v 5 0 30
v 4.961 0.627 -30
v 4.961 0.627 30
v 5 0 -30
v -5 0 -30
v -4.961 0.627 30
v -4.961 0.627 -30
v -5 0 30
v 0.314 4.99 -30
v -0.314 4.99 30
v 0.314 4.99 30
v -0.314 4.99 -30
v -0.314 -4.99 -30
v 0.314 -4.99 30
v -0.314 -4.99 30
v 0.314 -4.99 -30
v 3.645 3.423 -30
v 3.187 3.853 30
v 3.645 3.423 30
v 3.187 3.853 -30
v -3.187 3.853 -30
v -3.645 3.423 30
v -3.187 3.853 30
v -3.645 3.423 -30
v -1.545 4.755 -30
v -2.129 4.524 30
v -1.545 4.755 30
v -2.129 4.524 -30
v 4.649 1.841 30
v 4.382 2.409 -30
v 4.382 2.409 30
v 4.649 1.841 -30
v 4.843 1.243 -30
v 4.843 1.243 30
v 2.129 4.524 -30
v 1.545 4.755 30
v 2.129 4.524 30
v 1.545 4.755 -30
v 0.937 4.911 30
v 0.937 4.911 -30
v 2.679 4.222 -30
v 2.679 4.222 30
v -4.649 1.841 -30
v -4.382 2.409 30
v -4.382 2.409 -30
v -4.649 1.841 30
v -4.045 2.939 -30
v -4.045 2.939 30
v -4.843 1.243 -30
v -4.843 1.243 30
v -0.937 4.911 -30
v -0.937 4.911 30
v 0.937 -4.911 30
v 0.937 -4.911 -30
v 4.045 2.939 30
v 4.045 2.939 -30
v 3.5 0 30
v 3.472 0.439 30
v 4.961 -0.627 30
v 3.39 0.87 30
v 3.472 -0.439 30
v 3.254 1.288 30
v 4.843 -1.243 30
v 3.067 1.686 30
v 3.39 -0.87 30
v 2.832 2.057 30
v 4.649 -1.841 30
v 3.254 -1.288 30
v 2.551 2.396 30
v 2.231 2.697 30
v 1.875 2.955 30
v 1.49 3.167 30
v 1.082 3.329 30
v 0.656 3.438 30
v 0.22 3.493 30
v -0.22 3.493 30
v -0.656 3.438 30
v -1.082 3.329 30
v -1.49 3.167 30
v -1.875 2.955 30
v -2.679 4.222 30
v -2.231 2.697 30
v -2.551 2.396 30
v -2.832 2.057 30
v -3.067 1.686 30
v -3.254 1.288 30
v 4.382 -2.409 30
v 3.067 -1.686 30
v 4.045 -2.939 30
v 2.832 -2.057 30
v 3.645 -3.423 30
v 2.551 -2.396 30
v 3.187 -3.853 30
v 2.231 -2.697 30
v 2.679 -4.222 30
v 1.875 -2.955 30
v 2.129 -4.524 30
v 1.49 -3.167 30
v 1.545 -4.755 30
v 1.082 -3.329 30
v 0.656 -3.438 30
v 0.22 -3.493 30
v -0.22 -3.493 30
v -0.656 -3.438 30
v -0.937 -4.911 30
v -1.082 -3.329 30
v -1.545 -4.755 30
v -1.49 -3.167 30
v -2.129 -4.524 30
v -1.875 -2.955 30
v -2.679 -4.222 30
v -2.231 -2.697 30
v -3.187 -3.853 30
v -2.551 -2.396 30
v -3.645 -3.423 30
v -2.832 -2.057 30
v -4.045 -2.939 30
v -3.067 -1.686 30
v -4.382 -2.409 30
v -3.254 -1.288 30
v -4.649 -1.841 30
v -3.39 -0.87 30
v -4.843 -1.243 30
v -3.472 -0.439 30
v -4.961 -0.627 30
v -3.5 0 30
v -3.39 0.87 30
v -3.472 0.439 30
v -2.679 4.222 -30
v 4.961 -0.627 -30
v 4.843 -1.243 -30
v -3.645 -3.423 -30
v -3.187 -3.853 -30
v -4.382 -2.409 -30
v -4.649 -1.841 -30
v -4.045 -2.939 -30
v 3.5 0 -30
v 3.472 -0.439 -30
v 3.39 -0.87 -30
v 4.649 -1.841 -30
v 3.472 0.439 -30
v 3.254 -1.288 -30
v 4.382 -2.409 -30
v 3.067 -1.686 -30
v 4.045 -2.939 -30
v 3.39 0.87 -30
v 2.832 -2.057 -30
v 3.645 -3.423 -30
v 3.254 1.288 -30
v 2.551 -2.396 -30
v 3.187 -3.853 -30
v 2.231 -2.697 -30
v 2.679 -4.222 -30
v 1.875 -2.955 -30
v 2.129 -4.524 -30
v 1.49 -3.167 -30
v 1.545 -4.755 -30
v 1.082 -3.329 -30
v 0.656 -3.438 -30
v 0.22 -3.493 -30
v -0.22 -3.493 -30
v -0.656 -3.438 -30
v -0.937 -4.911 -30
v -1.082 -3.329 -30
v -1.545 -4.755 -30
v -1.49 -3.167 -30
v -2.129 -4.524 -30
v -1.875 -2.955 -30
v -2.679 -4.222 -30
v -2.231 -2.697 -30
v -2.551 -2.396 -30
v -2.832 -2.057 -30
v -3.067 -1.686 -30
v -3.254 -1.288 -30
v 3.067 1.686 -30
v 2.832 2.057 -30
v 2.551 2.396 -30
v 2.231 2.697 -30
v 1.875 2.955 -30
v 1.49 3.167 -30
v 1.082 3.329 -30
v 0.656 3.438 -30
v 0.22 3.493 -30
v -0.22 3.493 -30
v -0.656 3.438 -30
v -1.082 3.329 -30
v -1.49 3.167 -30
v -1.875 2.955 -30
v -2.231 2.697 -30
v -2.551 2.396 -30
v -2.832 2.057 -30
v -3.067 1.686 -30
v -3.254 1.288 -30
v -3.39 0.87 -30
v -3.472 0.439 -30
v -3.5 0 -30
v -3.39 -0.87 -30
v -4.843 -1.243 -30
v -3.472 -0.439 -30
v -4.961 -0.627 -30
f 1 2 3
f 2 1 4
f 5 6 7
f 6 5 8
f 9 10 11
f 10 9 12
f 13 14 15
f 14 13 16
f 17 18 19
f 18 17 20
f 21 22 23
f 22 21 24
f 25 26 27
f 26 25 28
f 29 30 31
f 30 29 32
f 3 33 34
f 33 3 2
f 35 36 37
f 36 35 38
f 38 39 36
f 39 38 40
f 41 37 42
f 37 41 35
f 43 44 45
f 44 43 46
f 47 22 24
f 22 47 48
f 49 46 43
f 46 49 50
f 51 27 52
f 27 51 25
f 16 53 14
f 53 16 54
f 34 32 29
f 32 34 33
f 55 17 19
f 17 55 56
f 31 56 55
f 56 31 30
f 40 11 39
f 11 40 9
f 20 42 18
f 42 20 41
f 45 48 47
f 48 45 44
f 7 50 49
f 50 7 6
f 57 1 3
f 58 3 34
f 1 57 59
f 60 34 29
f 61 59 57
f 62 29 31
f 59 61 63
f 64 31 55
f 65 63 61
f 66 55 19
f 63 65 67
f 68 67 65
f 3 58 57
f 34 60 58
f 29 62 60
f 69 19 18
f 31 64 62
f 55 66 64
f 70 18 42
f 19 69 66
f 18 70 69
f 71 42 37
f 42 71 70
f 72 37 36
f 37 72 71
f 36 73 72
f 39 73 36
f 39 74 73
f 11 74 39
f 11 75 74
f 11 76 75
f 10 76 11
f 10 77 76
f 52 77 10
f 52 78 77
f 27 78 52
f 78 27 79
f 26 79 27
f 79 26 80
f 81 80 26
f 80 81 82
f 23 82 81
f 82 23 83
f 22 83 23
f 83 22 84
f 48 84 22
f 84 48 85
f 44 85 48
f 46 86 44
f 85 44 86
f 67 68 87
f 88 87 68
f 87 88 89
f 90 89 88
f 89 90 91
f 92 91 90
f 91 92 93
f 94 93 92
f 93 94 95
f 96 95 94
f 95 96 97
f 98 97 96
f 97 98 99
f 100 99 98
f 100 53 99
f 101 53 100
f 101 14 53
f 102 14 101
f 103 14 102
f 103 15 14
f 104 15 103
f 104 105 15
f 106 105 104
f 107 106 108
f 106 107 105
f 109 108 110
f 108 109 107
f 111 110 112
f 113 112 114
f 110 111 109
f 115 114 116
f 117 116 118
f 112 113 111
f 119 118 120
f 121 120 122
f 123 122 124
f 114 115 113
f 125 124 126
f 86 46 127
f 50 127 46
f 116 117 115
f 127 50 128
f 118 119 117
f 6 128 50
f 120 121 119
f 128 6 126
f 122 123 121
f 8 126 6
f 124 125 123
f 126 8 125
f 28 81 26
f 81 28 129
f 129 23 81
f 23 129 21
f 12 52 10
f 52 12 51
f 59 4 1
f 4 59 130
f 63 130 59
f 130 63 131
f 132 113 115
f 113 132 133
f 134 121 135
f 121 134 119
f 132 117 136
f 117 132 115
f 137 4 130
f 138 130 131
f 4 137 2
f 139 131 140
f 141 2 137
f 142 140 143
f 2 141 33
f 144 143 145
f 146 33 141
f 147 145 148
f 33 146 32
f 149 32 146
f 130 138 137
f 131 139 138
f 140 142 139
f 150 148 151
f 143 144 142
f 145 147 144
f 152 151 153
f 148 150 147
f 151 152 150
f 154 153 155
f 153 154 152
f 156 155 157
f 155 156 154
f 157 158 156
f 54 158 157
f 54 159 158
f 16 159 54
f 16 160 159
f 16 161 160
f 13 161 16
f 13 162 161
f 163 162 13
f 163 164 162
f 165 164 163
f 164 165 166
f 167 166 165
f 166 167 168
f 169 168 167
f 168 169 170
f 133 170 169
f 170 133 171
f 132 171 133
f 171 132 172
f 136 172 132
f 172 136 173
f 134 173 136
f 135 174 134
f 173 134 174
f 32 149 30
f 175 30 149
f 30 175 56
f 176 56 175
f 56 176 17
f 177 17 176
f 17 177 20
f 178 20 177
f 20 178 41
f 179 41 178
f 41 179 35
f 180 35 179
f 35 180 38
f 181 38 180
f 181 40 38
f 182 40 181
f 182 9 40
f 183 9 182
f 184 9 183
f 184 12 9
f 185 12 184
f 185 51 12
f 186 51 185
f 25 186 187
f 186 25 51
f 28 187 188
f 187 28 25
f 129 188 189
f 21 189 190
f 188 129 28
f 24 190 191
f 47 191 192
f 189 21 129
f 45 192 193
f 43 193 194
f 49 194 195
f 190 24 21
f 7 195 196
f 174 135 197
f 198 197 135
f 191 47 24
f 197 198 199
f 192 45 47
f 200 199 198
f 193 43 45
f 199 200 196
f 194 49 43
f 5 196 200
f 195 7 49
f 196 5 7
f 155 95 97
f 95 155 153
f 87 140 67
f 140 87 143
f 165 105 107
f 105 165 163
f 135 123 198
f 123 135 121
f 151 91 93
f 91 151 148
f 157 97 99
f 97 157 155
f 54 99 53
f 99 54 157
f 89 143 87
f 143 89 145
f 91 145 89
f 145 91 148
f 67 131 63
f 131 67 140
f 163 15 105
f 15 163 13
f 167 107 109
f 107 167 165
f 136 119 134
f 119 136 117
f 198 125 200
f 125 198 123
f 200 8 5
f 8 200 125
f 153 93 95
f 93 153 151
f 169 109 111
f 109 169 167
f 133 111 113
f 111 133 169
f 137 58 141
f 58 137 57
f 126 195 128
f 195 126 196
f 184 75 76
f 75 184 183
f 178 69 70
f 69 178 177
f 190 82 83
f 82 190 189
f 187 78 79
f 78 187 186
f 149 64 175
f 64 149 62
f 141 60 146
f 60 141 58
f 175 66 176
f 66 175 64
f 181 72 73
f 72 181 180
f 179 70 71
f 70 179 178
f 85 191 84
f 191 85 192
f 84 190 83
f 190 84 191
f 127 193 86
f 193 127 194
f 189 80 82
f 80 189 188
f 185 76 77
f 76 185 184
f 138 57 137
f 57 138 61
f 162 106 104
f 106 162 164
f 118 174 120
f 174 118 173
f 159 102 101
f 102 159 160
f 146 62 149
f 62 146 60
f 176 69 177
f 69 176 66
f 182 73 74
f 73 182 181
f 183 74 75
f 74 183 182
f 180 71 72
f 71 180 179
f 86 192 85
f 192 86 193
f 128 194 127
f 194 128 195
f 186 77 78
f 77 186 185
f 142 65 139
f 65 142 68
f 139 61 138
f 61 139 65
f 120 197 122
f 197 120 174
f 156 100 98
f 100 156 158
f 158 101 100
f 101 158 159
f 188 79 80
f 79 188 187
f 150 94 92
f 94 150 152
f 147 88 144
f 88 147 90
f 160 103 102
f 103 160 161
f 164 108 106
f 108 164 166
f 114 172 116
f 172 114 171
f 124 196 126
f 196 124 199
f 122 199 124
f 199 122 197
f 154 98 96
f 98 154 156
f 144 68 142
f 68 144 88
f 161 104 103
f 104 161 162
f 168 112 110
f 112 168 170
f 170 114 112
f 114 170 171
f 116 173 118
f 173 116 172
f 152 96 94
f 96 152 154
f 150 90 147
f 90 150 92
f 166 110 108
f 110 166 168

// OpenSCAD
$fn = 50;


difference() {
	union() {
		translate(v = [0, 0, -30.0000000000]) {
			cylinder(h = 60, r = 5.0000000000);
		}
	}
	union() {
		translate(v = [0, 0, -100.0000000000]) {
			cylinder(h = 200, r = 3.5000000000);
		}
	}
}
